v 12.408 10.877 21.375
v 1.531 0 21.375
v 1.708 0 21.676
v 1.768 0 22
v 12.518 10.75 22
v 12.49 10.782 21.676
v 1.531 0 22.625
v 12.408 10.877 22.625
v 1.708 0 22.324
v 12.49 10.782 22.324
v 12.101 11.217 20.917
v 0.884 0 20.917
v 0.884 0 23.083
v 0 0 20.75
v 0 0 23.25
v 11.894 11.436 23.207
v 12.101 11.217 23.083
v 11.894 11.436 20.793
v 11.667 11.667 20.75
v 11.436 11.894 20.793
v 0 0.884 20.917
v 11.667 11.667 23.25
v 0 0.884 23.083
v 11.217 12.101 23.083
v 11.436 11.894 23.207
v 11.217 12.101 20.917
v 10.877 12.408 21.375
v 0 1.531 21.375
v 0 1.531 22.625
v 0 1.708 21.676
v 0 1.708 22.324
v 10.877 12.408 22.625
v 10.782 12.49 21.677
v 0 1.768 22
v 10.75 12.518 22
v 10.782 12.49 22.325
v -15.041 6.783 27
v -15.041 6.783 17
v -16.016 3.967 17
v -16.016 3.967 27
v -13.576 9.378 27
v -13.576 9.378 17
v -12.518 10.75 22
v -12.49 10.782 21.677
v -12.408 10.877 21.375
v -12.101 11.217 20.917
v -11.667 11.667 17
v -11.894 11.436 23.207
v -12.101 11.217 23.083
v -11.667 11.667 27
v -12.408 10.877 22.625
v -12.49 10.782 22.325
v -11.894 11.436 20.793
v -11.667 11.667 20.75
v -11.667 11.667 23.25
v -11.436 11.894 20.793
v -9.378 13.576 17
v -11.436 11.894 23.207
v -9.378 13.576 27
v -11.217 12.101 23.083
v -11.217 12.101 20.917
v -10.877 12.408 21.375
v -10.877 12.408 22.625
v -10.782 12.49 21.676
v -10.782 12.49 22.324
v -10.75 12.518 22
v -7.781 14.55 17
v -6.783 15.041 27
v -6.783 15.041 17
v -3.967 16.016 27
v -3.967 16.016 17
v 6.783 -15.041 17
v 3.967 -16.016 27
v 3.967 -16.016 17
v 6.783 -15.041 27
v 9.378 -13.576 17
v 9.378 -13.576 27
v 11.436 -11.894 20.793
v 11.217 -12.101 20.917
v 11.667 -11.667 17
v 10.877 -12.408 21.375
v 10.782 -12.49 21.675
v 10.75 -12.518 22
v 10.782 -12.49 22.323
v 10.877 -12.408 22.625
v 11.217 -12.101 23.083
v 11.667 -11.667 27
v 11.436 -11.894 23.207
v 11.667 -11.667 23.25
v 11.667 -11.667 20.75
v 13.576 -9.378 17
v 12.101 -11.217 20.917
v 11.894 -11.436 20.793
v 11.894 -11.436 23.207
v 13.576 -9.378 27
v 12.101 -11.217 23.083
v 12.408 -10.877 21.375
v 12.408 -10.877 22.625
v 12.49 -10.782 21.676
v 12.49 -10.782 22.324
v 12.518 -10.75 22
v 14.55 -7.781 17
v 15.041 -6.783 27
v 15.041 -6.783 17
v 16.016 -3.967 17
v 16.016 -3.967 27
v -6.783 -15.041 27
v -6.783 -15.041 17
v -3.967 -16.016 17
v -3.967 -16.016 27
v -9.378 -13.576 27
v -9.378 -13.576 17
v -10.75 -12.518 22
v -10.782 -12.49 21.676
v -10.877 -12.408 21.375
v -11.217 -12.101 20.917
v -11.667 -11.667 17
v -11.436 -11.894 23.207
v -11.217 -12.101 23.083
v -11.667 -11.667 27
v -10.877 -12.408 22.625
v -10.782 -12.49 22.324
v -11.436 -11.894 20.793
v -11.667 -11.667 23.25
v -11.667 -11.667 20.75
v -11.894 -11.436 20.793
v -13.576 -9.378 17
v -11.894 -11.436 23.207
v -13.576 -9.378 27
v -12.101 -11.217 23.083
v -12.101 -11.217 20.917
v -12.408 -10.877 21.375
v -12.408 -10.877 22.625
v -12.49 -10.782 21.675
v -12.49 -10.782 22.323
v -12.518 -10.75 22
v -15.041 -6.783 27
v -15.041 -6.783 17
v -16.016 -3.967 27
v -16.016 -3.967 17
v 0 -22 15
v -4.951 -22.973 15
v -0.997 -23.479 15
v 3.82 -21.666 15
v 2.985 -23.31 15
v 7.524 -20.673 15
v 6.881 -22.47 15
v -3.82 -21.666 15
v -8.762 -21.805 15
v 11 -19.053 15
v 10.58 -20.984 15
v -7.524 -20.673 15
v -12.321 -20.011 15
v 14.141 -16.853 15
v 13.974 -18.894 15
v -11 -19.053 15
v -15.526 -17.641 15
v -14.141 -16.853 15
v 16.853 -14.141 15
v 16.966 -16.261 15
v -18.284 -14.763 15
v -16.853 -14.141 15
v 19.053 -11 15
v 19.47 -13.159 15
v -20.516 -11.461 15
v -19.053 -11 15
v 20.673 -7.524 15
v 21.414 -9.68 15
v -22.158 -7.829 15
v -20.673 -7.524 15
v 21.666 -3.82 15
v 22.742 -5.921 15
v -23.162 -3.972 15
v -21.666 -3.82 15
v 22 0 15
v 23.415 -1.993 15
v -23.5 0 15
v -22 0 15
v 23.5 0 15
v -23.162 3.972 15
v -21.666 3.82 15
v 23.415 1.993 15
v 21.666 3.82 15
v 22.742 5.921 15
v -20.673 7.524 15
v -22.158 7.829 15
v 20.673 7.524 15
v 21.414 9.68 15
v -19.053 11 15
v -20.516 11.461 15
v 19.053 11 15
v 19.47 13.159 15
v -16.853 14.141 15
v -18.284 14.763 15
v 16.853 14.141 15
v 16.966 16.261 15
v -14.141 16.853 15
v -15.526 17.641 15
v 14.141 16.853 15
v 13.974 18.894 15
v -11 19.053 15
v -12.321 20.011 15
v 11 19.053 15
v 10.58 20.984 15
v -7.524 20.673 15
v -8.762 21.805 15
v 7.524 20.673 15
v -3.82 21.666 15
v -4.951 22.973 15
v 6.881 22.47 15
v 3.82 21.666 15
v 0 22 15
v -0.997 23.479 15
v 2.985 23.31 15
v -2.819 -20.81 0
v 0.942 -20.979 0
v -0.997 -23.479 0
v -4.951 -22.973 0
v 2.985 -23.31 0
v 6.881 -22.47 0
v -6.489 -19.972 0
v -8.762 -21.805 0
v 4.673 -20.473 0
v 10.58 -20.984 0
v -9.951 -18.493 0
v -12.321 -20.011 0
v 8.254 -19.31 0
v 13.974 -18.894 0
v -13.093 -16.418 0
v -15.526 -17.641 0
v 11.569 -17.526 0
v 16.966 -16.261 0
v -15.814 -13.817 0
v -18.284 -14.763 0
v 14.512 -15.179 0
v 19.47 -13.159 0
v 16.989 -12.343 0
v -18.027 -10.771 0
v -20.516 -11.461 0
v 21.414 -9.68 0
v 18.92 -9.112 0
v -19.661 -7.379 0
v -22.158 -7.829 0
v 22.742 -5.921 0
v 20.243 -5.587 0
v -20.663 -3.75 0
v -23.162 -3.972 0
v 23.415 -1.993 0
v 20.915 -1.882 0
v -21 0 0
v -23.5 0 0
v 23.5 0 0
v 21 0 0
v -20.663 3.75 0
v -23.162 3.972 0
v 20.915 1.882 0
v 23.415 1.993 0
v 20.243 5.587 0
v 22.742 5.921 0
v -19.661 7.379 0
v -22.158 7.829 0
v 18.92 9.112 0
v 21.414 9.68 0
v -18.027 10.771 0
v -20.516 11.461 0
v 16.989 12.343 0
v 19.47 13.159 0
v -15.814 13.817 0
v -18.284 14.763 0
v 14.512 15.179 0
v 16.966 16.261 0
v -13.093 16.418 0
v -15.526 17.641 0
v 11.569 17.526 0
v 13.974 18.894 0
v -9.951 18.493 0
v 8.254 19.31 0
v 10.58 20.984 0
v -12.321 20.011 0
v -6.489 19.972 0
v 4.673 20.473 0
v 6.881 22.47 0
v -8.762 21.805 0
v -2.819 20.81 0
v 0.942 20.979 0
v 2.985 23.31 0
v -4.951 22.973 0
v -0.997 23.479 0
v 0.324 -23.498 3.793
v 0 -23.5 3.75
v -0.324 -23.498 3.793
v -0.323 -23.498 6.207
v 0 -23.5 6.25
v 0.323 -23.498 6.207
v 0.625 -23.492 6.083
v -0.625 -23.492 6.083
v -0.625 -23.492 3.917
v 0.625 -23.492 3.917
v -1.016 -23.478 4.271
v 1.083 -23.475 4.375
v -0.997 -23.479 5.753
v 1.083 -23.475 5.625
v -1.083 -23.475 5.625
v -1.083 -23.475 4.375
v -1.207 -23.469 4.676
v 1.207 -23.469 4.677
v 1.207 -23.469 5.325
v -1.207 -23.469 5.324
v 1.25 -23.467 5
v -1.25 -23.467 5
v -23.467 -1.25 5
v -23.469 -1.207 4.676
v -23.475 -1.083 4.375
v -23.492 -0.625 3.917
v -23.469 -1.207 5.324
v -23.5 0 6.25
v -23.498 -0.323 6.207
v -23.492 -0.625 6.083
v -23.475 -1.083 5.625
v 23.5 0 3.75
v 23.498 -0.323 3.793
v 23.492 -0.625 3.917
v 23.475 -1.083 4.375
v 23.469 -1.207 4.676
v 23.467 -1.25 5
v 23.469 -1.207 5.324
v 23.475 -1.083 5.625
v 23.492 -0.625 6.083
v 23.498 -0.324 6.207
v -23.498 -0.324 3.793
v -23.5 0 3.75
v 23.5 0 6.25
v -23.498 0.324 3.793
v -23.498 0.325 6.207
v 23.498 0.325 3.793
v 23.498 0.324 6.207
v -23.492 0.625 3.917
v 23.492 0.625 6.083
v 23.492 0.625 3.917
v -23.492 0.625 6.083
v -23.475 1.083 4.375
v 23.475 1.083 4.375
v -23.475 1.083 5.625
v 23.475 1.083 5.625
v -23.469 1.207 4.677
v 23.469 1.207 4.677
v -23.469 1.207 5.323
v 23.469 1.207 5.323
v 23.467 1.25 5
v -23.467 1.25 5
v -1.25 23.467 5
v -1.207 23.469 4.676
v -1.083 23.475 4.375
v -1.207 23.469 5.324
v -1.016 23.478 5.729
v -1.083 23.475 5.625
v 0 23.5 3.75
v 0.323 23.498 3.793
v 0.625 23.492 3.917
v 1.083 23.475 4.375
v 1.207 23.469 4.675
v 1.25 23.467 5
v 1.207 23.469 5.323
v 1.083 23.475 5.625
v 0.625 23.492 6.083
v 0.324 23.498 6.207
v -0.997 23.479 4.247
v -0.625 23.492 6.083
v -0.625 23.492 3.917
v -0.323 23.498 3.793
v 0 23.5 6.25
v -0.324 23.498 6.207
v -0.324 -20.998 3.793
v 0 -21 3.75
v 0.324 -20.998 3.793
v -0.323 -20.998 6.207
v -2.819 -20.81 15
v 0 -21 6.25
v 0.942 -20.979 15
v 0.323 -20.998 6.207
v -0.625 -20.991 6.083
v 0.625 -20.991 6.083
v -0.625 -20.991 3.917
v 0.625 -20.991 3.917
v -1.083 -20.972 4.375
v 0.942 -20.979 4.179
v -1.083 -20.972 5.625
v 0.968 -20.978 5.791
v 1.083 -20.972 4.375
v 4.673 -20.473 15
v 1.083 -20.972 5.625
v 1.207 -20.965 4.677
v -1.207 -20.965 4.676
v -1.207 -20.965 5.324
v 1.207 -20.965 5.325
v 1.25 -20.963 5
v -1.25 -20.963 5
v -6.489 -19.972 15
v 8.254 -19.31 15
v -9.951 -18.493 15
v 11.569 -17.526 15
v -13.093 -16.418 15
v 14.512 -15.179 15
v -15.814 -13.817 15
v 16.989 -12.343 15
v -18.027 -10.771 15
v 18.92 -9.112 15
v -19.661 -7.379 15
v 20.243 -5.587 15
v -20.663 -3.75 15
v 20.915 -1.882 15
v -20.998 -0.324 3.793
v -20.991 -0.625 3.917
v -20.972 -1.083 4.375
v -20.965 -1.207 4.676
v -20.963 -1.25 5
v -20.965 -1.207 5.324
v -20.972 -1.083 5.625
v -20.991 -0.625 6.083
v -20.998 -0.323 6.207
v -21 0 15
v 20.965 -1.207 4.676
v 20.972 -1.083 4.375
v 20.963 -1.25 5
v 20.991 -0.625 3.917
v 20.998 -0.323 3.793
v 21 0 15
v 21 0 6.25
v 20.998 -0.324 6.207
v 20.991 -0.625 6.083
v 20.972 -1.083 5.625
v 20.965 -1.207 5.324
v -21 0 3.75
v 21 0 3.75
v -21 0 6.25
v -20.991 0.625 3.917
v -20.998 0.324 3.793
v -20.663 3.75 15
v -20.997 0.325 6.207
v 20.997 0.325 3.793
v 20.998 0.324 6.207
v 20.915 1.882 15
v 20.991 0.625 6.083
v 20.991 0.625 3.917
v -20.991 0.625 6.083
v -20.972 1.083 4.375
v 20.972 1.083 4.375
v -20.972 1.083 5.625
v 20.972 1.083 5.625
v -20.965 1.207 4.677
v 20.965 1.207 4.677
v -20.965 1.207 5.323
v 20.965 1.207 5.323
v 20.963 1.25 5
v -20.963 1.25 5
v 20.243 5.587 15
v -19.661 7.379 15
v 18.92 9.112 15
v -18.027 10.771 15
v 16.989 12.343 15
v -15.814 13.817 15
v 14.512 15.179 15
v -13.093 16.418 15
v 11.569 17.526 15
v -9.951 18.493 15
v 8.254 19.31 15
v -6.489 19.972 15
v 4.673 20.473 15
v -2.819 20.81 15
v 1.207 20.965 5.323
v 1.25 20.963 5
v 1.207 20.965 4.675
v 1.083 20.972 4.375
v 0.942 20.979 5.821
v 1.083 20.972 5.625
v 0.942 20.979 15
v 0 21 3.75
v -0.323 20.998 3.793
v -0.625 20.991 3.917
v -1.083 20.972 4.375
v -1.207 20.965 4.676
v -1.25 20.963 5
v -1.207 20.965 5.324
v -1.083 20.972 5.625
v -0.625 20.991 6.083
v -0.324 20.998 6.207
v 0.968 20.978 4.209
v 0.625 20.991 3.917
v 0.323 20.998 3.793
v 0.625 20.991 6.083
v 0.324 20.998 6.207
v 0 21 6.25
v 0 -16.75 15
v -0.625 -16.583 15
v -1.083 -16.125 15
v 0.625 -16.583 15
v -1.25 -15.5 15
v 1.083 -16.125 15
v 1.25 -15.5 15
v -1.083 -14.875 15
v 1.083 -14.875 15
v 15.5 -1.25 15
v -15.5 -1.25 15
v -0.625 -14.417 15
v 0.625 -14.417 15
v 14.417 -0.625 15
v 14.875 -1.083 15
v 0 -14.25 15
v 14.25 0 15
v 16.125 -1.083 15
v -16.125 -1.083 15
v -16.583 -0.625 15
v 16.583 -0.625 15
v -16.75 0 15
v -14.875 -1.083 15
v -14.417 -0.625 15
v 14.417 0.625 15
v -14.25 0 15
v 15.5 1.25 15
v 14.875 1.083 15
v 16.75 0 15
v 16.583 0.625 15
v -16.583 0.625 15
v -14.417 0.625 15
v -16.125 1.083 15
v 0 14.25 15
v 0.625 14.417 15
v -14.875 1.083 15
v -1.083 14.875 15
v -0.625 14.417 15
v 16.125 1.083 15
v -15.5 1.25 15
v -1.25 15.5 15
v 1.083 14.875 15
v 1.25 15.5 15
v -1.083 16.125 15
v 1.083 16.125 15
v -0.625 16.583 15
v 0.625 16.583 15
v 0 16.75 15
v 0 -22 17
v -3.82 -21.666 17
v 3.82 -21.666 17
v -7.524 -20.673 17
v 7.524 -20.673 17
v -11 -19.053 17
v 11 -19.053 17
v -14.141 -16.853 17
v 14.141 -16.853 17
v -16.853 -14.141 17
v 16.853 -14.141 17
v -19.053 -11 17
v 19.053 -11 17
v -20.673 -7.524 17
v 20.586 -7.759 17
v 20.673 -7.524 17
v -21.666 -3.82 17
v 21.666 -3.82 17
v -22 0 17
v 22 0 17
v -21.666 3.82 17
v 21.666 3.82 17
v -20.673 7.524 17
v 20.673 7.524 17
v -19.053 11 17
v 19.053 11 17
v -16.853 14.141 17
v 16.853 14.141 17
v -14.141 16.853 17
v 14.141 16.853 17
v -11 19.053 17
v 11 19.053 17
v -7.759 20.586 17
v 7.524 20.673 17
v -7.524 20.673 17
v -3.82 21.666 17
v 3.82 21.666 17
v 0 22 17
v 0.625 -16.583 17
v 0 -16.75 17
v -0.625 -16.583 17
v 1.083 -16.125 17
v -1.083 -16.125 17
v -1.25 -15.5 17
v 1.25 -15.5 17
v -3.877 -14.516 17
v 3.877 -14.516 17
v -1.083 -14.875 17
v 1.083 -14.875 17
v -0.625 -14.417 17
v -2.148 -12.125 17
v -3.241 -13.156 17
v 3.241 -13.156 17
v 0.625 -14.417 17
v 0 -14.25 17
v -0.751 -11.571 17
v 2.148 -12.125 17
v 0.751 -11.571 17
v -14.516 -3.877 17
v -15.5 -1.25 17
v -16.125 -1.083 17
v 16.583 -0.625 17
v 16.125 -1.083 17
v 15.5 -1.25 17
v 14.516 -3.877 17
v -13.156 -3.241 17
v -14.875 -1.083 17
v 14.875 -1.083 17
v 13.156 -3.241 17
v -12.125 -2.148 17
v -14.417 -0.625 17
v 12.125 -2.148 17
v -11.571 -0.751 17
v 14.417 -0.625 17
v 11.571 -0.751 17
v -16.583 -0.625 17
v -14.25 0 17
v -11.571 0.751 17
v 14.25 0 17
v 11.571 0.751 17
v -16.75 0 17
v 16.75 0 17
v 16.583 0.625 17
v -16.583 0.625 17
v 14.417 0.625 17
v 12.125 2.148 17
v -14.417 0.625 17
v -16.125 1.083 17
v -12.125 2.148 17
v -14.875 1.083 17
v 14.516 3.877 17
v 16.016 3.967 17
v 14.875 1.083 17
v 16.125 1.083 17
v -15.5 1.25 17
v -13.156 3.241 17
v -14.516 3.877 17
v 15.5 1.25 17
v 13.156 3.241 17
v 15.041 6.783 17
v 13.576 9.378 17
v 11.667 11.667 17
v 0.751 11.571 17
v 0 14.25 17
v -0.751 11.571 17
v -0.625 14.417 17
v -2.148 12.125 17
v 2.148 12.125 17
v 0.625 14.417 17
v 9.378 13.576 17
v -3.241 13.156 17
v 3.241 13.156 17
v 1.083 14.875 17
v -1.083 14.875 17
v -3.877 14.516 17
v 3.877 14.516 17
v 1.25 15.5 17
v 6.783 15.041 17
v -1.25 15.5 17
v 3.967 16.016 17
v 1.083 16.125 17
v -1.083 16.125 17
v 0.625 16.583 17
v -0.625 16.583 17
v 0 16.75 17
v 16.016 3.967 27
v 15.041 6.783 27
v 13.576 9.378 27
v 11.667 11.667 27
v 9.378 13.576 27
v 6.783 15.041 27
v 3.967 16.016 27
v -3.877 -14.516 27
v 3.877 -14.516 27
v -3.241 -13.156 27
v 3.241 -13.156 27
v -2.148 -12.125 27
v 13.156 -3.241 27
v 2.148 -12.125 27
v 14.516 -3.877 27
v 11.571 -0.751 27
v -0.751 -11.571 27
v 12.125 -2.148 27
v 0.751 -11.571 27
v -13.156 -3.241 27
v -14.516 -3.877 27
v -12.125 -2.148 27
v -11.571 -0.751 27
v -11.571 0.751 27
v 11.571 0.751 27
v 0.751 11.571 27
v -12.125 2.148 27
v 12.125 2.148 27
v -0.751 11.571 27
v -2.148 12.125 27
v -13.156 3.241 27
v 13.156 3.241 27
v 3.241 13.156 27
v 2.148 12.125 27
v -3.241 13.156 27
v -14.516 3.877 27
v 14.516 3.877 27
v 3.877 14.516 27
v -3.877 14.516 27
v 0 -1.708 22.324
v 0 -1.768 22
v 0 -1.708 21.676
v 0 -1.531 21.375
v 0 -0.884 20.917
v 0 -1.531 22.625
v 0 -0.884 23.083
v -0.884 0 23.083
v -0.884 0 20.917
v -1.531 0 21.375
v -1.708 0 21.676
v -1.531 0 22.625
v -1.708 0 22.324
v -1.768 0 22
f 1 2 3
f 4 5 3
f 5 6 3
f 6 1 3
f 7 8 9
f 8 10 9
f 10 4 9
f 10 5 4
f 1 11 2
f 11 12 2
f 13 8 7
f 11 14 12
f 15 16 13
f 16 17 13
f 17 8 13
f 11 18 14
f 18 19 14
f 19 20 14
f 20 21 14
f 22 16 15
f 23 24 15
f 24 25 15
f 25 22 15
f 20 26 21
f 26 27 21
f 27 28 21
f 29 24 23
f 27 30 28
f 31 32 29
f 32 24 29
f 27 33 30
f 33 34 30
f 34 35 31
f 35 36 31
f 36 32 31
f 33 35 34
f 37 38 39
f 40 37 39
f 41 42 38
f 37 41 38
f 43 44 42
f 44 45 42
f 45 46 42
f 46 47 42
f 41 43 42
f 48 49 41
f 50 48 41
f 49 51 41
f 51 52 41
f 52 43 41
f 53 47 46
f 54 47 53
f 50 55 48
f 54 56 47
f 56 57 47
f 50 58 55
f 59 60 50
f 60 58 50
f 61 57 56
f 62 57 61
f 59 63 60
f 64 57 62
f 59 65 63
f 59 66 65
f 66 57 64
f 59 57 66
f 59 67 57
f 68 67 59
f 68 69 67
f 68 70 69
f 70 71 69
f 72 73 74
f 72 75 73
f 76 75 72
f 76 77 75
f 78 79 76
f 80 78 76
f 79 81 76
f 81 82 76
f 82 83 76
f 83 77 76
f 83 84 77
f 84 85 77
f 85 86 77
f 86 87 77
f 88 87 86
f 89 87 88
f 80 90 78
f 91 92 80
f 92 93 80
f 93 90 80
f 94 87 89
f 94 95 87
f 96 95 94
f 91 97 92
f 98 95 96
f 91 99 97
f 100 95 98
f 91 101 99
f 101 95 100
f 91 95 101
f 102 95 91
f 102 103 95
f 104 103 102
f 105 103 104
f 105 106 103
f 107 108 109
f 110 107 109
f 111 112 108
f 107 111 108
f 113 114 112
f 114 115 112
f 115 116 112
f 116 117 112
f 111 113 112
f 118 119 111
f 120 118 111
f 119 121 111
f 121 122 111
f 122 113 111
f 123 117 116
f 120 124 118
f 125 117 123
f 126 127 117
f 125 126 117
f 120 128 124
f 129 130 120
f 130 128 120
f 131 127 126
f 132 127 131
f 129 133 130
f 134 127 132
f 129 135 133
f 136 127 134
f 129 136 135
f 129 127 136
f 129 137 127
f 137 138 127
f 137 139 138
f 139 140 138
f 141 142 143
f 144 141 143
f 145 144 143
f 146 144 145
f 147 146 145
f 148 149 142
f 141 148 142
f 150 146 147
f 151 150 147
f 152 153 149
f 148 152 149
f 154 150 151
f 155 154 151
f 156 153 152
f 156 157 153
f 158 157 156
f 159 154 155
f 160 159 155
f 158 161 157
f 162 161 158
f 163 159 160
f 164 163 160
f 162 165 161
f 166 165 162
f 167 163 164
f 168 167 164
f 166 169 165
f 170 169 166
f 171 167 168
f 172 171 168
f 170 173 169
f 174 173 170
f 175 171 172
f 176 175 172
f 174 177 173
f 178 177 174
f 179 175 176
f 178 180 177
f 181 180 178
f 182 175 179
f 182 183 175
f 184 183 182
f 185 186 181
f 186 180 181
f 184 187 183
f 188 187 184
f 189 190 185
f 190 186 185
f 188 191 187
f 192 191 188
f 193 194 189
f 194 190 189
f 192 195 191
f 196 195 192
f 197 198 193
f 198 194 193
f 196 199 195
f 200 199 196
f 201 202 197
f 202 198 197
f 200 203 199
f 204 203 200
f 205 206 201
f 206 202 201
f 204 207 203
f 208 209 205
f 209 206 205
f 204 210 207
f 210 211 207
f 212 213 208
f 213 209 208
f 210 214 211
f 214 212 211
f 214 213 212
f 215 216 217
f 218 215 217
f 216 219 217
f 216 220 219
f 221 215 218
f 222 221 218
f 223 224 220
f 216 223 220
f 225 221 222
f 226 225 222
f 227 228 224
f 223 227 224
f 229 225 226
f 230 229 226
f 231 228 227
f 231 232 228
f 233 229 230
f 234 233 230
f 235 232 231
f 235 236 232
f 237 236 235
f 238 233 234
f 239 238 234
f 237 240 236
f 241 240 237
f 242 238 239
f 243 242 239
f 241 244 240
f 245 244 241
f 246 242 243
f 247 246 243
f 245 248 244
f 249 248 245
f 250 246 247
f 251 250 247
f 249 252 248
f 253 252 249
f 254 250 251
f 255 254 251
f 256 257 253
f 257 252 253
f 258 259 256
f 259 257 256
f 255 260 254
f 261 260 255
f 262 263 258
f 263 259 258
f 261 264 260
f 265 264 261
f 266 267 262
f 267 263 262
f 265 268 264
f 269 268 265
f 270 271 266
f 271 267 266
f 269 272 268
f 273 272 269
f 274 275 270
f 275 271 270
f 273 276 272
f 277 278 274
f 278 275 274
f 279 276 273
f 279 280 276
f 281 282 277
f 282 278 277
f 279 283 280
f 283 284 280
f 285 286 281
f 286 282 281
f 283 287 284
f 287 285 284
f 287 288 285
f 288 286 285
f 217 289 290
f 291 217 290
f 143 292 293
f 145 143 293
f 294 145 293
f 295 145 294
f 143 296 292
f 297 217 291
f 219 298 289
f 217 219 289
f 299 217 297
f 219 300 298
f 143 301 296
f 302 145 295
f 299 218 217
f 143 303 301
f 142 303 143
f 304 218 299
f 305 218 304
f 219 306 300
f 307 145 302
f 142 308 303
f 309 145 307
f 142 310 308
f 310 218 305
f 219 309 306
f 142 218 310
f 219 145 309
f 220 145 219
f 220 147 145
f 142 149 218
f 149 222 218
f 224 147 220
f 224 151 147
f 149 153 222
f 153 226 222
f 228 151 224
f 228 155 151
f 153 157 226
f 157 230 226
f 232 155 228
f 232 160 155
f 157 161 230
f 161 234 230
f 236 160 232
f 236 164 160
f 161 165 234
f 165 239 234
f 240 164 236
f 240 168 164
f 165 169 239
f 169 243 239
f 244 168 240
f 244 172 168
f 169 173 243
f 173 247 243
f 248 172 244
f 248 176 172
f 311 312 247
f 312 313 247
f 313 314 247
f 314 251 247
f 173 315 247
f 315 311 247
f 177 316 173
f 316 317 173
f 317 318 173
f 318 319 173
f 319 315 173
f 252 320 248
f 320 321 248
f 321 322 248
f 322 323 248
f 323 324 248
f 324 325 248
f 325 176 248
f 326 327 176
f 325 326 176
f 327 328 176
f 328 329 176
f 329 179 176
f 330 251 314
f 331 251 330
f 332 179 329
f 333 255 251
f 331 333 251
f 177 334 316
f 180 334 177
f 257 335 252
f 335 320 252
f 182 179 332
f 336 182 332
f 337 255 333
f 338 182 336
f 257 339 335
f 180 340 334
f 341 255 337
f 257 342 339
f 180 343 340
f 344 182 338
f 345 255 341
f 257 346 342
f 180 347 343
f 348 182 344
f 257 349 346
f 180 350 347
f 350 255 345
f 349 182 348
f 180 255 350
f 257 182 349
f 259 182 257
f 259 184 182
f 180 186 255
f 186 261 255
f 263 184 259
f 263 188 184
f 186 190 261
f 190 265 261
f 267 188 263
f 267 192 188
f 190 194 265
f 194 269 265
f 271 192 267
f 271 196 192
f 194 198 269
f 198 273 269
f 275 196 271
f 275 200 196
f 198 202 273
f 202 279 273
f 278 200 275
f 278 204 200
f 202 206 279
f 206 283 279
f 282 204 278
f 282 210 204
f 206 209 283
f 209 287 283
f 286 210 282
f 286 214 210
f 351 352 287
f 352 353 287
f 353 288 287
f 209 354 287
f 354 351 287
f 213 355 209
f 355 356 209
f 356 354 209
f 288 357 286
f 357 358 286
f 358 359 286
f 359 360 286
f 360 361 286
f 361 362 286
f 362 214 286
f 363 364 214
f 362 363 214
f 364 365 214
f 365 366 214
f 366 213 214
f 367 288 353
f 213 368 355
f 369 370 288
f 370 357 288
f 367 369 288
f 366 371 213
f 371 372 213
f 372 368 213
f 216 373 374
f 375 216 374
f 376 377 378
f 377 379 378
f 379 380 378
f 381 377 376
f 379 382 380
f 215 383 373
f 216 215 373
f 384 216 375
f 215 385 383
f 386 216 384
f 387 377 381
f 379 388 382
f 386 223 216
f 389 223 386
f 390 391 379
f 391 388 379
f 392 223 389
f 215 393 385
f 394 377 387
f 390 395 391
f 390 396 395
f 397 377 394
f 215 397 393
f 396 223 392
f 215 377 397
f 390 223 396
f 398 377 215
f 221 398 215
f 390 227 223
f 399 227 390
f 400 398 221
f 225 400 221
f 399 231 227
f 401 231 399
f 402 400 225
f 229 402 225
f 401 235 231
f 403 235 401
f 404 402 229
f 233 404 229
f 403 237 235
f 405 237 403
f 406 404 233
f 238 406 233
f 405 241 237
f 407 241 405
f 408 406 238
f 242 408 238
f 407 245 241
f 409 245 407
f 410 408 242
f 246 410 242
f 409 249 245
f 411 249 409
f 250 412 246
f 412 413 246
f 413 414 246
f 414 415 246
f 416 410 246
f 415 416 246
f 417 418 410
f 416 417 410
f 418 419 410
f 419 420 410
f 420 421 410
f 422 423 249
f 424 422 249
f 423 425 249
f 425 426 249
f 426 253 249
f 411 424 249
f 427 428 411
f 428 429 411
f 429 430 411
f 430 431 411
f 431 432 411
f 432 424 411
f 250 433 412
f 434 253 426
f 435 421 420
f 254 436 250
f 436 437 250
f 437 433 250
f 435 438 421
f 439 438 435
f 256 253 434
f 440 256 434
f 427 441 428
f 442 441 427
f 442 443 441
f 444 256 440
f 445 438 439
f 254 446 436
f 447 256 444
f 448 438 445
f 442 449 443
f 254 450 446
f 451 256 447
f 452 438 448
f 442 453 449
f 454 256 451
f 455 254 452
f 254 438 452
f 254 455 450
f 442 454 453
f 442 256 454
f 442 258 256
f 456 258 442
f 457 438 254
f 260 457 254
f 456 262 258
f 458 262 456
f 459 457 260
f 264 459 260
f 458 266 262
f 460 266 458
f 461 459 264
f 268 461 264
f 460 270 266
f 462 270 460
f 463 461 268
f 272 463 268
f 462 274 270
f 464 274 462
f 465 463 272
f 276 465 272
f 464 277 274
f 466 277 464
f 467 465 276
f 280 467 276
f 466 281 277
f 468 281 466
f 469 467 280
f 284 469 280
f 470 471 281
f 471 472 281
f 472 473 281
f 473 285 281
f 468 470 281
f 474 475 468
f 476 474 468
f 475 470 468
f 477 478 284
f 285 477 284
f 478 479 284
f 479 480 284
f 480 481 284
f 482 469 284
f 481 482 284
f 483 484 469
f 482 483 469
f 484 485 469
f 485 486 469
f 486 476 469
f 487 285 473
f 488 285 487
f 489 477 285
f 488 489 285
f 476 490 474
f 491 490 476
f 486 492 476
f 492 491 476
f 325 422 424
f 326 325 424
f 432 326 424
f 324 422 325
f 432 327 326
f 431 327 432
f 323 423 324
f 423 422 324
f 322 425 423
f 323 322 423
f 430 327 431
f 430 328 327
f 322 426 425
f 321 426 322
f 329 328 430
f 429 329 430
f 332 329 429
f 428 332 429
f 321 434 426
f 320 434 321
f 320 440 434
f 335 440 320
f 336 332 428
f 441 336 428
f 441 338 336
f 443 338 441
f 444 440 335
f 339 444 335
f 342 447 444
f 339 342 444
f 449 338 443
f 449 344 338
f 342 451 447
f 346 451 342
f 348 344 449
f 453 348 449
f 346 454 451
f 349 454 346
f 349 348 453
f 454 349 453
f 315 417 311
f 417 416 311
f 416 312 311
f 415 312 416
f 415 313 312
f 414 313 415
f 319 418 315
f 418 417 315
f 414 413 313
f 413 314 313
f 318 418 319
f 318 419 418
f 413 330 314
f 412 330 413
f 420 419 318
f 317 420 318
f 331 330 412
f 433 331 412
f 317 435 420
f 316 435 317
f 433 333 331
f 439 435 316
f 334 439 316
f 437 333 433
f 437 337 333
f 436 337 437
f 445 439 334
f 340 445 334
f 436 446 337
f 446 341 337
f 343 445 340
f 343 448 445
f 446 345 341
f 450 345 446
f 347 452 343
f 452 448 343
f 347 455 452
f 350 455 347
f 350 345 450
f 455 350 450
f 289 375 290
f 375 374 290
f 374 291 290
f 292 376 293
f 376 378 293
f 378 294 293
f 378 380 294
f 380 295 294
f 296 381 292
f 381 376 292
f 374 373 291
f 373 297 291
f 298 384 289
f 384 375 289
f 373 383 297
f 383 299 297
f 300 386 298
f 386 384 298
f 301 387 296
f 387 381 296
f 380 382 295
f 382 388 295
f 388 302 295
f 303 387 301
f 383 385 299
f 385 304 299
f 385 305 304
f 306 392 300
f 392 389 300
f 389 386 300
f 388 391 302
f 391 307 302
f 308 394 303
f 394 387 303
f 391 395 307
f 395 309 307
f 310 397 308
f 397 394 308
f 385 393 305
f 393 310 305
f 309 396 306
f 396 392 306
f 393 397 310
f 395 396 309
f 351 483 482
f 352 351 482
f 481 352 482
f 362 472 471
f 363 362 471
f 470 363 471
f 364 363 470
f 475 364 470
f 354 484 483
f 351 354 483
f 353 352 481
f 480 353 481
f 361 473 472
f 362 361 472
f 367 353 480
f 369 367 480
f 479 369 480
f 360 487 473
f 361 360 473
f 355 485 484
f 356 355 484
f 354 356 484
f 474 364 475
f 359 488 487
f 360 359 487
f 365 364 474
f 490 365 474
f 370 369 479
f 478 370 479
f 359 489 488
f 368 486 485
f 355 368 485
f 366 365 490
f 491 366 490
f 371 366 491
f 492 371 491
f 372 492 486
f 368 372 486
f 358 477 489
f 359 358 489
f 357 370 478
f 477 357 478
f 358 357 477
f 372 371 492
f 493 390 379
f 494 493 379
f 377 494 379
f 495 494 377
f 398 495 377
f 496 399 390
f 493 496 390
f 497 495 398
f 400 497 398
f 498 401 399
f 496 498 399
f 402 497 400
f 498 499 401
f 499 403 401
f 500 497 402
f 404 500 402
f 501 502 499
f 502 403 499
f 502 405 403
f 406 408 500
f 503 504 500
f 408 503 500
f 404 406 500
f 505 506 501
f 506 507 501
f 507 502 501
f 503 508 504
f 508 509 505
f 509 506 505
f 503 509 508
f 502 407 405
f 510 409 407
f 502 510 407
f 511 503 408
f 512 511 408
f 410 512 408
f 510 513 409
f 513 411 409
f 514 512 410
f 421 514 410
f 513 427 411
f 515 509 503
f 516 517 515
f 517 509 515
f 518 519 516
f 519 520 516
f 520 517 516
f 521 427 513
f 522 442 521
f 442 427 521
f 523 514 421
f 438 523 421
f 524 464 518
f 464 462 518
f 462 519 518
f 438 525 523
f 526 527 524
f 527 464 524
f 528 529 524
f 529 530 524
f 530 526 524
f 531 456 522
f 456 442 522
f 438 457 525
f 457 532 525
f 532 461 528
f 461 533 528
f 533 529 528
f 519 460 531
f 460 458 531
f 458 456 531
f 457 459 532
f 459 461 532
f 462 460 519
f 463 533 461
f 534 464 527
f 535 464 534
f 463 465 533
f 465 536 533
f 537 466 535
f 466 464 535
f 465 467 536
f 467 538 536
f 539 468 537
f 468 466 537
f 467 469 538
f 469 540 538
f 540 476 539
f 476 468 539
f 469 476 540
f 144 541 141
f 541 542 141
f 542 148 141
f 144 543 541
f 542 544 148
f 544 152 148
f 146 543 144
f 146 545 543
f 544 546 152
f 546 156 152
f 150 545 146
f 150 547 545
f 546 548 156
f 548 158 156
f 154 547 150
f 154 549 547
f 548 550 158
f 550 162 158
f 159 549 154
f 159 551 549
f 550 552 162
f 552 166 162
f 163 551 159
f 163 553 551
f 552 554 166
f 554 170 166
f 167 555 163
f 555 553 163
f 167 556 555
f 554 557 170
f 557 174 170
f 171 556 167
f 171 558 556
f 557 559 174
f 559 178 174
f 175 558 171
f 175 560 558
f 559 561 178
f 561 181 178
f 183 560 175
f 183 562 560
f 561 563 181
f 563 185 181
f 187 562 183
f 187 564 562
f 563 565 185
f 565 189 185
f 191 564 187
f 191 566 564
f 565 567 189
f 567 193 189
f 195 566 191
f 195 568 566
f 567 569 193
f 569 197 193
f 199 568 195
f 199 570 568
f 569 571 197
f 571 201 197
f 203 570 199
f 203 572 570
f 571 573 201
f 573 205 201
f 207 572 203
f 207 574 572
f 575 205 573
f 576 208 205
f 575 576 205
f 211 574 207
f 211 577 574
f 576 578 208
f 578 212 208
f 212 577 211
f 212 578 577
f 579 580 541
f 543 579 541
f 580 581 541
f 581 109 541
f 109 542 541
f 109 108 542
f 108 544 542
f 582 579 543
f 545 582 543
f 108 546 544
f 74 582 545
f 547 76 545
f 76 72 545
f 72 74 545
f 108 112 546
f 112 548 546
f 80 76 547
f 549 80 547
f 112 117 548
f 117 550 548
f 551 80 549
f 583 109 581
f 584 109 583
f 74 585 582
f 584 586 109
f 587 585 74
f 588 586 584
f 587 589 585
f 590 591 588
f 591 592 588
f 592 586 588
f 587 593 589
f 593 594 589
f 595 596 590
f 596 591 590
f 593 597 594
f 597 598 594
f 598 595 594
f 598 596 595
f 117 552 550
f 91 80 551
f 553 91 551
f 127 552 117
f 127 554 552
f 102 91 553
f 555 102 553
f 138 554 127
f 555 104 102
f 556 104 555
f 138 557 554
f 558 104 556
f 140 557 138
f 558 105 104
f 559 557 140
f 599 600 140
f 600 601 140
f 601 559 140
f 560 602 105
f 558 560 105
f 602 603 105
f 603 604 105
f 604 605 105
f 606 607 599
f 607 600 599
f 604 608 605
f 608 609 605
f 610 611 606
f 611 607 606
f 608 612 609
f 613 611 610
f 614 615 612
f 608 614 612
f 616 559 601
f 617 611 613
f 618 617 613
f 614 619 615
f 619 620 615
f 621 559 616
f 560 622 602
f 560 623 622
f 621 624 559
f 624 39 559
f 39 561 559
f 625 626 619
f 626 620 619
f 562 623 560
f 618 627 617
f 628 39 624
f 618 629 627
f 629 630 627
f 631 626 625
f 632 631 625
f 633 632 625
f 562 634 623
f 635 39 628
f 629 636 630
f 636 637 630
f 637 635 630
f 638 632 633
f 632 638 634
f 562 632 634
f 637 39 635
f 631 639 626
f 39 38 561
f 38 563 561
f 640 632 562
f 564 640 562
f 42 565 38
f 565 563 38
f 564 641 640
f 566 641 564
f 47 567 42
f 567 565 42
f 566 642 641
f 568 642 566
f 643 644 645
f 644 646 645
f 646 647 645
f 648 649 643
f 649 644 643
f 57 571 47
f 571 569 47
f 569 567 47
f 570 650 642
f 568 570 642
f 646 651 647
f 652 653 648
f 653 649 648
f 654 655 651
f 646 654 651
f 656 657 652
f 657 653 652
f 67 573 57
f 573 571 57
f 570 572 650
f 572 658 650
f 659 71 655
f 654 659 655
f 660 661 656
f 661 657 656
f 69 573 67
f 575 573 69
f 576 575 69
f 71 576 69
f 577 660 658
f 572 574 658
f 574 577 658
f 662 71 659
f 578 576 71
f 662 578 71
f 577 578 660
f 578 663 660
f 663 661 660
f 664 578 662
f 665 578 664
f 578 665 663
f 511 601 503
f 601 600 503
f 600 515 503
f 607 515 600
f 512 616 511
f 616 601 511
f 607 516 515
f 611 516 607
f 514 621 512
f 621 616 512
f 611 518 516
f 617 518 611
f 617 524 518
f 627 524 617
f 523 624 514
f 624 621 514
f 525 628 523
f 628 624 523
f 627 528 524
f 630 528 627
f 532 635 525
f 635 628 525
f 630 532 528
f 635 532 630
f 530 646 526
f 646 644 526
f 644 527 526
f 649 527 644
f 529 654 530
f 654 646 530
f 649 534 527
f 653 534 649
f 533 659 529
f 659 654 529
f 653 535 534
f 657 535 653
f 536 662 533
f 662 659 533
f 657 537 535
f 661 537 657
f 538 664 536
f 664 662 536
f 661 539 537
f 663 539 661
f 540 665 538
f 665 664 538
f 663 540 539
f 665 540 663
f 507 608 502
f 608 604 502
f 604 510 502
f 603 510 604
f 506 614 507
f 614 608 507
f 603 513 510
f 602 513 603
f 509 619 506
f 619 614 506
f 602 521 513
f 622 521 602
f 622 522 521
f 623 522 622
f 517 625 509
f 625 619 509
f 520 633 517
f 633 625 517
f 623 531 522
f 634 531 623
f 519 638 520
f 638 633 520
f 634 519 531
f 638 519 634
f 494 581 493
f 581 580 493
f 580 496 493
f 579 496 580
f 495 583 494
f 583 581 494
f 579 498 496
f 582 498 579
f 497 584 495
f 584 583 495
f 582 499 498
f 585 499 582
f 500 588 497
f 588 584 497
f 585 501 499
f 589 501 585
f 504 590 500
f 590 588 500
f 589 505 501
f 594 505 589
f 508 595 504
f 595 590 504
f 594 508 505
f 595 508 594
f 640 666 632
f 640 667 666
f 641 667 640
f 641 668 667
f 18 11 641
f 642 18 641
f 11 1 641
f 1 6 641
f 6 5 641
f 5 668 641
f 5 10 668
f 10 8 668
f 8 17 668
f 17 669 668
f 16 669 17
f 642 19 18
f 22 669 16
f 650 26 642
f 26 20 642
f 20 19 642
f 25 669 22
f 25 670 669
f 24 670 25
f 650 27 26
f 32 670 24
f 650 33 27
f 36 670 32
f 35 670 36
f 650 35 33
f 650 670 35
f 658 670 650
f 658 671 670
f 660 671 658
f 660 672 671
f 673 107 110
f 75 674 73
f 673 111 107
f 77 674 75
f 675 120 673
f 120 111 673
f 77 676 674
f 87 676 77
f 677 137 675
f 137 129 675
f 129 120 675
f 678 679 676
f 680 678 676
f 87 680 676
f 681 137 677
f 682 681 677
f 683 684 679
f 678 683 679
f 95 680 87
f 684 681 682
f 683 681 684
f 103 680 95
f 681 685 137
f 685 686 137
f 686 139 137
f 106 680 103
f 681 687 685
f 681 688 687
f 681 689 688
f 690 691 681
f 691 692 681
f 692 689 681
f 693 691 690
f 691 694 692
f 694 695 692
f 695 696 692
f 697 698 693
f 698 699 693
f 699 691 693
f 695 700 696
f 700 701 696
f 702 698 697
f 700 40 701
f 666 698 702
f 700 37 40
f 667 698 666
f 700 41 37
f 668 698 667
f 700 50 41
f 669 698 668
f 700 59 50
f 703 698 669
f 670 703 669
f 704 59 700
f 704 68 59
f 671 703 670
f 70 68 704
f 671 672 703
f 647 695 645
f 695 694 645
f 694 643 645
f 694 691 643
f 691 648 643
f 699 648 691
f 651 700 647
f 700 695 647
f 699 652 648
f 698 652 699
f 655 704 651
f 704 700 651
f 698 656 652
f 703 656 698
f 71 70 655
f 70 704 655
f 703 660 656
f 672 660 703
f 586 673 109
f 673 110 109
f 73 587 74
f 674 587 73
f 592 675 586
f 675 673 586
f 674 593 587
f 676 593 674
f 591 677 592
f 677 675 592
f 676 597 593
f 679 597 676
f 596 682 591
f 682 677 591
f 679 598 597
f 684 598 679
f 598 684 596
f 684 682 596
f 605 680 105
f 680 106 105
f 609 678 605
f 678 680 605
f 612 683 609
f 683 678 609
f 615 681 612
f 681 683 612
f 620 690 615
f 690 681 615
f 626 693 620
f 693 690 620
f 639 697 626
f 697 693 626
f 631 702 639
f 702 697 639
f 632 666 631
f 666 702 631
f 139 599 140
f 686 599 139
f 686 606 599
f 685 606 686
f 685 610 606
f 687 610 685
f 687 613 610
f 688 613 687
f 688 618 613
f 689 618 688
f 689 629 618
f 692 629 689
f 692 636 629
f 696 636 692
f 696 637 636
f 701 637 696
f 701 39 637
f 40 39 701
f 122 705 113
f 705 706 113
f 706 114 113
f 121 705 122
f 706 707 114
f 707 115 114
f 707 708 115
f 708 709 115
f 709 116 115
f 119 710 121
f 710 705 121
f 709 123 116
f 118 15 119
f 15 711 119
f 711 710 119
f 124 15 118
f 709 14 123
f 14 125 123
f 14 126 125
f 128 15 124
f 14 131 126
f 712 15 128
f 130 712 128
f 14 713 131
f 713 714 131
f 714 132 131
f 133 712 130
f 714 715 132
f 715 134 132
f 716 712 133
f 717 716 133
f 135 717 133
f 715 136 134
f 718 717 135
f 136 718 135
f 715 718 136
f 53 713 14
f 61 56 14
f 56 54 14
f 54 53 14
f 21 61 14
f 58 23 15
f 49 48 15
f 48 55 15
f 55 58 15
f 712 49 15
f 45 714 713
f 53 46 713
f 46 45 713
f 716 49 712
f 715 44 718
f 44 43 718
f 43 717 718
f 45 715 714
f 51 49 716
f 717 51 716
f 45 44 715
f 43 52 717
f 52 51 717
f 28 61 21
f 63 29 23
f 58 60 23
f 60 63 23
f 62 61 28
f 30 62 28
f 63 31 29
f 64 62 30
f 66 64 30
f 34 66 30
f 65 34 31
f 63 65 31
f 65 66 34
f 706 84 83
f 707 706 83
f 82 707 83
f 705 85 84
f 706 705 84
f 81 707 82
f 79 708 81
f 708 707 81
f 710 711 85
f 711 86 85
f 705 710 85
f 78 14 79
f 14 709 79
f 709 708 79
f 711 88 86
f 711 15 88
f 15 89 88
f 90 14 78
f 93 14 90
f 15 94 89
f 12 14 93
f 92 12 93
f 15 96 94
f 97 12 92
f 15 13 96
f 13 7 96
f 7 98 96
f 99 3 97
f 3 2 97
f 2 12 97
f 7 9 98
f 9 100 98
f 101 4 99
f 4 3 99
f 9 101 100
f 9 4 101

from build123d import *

# Parameters (mm, degrees)
SKETCH_1_R               = 23.5
SKETCH_1_R_2             = 21
EXTRUDE_1_DEPTH          = 15
SKETCH_2_R               = 1.25
CUT_EXTRUDE_1_DEPTH      = 27
PATTERN_CIRCULAR_1_COUNT = 4
SKETCH_3_R               = 22
EXTRUDE_2_DEPTH          = 2
SKETCH_4_R               = 1.25
CUT_EXTRUDE_2_DEPTH      = 2
SKETCH_5_R               = 16.5
EXTRUDE_4_DEPTH          = 10
SKETCH_6_R               = 4
CUT_EXTRUDE_5_DEPTH      = 10
SKETCH_8_R               = 1.25
CUT_EXTRUDE_6_DEPTH      = 43
PATTERN_CIRCULAR_2_COUNT = 4


with BuildPart() as part:
    # 草图1 → 凸台-拉伸1 (new body)
    with BuildSketch(Plane.XY):
        Circle(SKETCH_1_R)
        Circle(SKETCH_1_R_2, mode=Mode.SUBTRACT)
    extrude(amount=EXTRUDE_1_DEPTH)

    # 草图2 → 切除-拉伸1 (cut, symmetric)
    with BuildSketch(Plane(origin=(0, 0, 0), x_dir=(0, 0, -1), z_dir=(1, 0, 0))):
        with Locations((-5, 0)):
            Circle(SKETCH_2_R)
    cut_extrude_1 = extrude(amount=CUT_EXTRUDE_1_DEPTH, both=True, mode=Mode.SUBTRACT)

    # 阵列(圆周)1: 切除-拉伸1 ×4 about axis
    pattern_circular_1_axis = Axis((0, 0, 15), (0, 0, -1))
    for i in range(1, PATTERN_CIRCULAR_1_COUNT):
        add(cut_extrude_1.rotate(pattern_circular_1_axis, i * 360 / PATTERN_CIRCULAR_1_COUNT), mode=Mode.SUBTRACT)

    # 草图3 → 凸台-拉伸2 (add)
    with BuildSketch(Plane.XY.offset(15)):
        Circle(SKETCH_3_R)
    extrude(amount=EXTRUDE_2_DEPTH)

    # 草图4 → 切除-拉伸2 (cut)
    with BuildSketch(Plane.XY.offset(17)):
        with Locations((15.5, 0)):
            Circle(SKETCH_4_R)
        with Locations((0, -15.5)):
            Circle(SKETCH_4_R)
        with Locations((-15.5, 0)):
            Circle(SKETCH_4_R)
        with Locations((0, 15.5)):
            Circle(SKETCH_4_R)
    extrude(amount=-CUT_EXTRUDE_2_DEPTH, mode=Mode.SUBTRACT)

    # 草图5 → 凸台-拉伸4 (add)
    with BuildSketch(Plane.XY.offset(17)):
        with Locations(Location((0, 0, 0), (0, 0, 182.687298331))):
            Circle(SKETCH_5_R)
    extrude(amount=EXTRUDE_4_DEPTH)

    # 草图6 → 切除-拉伸5 (cut)
    with BuildSketch(Plane.XY.offset(27)):
        with Locations((0, -15.5)):
            Circle(SKETCH_6_R)
        with Locations((-15.5, 0)):
            Circle(SKETCH_6_R)
        with Locations((0, 15.5)):
            Circle(SKETCH_6_R)
        with Locations((15.5, 0)):
            Circle(SKETCH_6_R)
    extrude(amount=-CUT_EXTRUDE_5_DEPTH, mode=Mode.SUBTRACT)

    # 草图8 → 切除-拉伸6 (cut)
    with BuildSketch(Plane(origin=(11.66726189, 11.66726189, 0), x_dir=(0, 0, -1), z_dir=(0.7071067811865561, 0.7071067811865389, 0))):
        with Locations(Location((-22, 0, 0), (0, 0, 90))):
            Circle(SKETCH_8_R)
    cut_extrude_6 = extrude(amount=-CUT_EXTRUDE_6_DEPTH, mode=Mode.SUBTRACT)

    # 阵列(圆周)2: 切除-拉伸6 ×4 about axis
    pattern_circular_2_axis = Axis((0, 0, 27), (0, 0, 1))
    for i in range(1, PATTERN_CIRCULAR_2_COUNT):
        add(cut_extrude_6.rotate(pattern_circular_2_axis, i * 360 / PATTERN_CIRCULAR_2_COUNT), mode=Mode.SUBTRACT)


solid = part.part
